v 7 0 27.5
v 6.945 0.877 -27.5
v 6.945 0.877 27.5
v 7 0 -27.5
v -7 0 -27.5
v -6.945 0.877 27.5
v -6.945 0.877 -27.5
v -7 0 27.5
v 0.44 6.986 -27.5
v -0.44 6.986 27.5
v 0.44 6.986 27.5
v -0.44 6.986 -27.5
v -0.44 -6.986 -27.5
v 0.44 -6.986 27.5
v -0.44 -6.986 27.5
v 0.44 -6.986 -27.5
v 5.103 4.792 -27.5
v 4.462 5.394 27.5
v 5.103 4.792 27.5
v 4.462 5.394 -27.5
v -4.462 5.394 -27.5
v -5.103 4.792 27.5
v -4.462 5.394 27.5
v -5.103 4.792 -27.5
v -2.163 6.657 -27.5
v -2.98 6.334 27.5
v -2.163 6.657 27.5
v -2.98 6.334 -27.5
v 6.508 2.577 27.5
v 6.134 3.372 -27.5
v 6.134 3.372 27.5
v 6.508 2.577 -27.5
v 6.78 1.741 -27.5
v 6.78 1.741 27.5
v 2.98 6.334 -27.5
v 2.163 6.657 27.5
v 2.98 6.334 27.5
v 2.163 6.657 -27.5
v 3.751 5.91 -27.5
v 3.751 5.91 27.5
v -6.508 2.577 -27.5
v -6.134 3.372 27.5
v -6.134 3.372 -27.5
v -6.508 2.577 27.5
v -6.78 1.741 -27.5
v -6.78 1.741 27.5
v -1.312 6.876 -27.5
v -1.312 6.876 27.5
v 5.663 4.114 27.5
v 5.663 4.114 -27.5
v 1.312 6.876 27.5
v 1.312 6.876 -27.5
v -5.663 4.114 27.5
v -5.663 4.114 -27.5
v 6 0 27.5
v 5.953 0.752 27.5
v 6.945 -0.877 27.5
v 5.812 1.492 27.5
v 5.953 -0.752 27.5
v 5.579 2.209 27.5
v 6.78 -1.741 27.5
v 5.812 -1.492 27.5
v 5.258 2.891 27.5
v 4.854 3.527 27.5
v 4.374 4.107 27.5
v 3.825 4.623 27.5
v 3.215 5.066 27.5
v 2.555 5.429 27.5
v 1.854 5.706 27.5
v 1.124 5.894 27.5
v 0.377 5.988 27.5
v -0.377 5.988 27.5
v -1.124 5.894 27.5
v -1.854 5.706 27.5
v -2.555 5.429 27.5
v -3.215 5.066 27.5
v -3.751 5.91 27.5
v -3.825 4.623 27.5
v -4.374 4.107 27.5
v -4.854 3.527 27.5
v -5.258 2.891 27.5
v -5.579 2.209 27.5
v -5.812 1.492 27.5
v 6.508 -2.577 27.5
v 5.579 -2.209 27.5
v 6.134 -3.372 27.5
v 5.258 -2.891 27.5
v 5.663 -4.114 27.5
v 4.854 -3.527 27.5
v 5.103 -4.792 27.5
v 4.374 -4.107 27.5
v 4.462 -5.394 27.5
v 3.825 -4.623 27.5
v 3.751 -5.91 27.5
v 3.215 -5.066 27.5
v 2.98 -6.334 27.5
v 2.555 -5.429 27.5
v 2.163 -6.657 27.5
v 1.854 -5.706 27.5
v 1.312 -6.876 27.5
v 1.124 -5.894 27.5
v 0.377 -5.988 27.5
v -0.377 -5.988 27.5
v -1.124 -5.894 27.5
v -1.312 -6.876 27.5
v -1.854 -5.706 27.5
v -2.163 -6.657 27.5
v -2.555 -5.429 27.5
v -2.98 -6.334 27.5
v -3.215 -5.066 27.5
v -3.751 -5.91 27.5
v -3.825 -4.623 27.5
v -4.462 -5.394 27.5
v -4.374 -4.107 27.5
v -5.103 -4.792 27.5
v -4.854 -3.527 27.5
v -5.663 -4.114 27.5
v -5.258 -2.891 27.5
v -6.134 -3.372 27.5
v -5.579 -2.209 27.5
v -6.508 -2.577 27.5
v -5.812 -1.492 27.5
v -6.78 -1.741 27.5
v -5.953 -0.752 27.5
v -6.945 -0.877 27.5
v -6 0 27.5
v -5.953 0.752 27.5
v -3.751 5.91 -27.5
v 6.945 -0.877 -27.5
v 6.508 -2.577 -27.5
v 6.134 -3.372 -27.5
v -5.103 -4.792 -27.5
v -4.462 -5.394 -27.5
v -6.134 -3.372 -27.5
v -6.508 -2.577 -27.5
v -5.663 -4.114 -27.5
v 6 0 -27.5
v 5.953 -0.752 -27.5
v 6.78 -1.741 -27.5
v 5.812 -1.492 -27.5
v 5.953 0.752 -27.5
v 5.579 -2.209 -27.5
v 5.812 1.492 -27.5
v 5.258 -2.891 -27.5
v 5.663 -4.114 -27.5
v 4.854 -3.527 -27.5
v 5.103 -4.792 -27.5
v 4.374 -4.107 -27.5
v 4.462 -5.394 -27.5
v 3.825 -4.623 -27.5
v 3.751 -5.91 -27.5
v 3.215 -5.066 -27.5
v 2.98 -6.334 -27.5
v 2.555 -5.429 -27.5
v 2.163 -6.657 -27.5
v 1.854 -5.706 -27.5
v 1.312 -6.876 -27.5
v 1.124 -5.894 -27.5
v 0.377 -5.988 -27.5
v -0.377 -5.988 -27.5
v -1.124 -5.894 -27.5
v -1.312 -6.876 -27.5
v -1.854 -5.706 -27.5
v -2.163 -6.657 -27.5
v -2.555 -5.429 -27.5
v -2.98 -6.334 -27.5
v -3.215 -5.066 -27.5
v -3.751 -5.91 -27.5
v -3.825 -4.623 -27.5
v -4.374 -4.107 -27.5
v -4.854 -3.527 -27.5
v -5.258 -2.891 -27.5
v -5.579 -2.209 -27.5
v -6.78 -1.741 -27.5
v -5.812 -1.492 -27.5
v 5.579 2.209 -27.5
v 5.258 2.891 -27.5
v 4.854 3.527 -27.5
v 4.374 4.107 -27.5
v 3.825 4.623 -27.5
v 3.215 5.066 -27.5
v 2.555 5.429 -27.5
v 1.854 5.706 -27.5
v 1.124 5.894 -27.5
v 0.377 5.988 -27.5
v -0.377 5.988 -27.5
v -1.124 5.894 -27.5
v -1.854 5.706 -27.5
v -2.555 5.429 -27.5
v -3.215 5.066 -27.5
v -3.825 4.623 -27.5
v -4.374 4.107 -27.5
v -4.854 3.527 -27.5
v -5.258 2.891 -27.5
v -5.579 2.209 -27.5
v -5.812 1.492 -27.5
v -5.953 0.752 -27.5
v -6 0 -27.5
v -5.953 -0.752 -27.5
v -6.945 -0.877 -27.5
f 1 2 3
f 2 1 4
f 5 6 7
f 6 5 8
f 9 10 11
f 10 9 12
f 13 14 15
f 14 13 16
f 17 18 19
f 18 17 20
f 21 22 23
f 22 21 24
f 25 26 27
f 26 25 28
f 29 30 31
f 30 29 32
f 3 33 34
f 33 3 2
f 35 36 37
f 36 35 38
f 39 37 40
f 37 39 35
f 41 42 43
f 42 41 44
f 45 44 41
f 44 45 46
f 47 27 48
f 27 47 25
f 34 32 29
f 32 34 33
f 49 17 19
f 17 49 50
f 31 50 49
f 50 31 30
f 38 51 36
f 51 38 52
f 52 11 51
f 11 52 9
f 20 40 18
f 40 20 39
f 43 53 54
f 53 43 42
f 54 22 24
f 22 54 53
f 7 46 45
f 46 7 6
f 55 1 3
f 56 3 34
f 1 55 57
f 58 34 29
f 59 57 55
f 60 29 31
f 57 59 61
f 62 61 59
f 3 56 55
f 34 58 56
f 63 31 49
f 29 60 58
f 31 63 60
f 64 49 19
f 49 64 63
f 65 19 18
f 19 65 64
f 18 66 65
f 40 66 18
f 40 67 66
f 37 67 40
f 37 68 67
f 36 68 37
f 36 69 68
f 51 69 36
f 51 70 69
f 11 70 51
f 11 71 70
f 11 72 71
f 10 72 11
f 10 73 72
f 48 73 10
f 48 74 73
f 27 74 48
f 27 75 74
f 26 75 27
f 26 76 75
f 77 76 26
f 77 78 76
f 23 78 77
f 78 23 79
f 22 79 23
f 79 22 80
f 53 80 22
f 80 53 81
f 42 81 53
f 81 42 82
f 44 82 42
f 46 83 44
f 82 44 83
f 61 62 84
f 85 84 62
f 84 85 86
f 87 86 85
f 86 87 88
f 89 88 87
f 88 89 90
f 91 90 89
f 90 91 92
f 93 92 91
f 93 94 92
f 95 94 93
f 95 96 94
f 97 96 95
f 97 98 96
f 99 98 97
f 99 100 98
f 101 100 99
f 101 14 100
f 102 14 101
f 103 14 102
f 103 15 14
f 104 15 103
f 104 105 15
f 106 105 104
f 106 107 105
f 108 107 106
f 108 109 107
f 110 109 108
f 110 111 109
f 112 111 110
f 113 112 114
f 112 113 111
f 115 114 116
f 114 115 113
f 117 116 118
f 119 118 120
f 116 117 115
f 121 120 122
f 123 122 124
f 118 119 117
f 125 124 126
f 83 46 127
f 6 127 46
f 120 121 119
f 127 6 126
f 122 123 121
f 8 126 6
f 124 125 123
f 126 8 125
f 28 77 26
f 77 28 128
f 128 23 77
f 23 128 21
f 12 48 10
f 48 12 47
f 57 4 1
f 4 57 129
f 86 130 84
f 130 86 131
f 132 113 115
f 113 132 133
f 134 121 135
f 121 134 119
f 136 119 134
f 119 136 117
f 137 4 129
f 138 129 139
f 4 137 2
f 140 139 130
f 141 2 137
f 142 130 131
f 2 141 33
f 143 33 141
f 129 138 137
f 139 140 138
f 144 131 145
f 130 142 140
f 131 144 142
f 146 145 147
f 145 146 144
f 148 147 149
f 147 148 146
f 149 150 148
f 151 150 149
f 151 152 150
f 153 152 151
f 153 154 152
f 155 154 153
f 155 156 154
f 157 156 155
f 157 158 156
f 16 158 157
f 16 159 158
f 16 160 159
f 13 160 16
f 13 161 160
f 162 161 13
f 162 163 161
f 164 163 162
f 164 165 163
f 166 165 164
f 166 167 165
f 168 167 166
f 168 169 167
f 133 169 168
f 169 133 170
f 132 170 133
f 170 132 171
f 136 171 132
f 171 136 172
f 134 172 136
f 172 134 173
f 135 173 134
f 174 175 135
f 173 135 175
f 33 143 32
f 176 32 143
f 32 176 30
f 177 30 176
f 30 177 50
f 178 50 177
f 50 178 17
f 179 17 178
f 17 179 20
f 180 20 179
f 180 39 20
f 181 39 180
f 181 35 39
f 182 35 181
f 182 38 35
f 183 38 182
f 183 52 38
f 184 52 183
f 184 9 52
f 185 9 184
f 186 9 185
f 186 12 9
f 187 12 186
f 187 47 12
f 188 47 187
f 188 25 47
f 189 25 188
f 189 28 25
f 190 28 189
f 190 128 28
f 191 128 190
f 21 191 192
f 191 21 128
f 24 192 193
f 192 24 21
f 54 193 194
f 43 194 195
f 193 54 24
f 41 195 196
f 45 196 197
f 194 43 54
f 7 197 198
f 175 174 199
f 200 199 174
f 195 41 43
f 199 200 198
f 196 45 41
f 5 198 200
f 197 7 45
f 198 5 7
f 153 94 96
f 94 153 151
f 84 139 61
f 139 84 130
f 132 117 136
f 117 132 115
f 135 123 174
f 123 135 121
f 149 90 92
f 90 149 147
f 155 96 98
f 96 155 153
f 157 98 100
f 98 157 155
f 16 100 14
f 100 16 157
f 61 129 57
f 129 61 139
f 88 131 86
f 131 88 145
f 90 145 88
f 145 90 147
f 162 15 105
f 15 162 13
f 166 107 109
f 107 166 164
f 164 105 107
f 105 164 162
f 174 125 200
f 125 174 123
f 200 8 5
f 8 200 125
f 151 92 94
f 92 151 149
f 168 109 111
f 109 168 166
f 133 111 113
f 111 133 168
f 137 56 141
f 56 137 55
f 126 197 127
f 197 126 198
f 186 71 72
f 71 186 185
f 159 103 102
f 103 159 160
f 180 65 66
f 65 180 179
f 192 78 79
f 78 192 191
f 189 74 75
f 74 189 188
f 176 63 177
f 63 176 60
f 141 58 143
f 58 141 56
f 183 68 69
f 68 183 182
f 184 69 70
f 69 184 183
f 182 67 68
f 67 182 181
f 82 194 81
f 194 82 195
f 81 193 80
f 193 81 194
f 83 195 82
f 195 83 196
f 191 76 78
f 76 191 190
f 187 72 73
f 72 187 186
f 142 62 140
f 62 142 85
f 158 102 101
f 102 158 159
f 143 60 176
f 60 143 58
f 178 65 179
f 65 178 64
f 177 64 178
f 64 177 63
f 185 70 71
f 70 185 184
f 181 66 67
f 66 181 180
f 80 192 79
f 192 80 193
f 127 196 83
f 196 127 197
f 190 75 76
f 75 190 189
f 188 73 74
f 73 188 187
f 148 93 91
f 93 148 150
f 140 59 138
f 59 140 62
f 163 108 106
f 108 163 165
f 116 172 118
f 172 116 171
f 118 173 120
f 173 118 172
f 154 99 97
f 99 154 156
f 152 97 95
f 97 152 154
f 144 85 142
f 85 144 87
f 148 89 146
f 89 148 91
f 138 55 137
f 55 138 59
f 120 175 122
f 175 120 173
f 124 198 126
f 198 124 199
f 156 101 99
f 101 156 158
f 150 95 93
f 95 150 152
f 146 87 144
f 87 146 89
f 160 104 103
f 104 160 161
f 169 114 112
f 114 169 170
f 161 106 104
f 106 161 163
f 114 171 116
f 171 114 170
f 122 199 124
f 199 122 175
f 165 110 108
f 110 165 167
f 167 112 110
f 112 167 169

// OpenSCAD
$fn = 50;


difference() {
	union() {
		translate(v = [0, 0, -27.5000000000]) {
			cylinder(h = 55, r = 7.0000000000);
		}
	}
	union() {
		translate(v = [0, 0, -100.0000000000]) {
			cylinder(h = 200, r = 6);
		}
	}
}
